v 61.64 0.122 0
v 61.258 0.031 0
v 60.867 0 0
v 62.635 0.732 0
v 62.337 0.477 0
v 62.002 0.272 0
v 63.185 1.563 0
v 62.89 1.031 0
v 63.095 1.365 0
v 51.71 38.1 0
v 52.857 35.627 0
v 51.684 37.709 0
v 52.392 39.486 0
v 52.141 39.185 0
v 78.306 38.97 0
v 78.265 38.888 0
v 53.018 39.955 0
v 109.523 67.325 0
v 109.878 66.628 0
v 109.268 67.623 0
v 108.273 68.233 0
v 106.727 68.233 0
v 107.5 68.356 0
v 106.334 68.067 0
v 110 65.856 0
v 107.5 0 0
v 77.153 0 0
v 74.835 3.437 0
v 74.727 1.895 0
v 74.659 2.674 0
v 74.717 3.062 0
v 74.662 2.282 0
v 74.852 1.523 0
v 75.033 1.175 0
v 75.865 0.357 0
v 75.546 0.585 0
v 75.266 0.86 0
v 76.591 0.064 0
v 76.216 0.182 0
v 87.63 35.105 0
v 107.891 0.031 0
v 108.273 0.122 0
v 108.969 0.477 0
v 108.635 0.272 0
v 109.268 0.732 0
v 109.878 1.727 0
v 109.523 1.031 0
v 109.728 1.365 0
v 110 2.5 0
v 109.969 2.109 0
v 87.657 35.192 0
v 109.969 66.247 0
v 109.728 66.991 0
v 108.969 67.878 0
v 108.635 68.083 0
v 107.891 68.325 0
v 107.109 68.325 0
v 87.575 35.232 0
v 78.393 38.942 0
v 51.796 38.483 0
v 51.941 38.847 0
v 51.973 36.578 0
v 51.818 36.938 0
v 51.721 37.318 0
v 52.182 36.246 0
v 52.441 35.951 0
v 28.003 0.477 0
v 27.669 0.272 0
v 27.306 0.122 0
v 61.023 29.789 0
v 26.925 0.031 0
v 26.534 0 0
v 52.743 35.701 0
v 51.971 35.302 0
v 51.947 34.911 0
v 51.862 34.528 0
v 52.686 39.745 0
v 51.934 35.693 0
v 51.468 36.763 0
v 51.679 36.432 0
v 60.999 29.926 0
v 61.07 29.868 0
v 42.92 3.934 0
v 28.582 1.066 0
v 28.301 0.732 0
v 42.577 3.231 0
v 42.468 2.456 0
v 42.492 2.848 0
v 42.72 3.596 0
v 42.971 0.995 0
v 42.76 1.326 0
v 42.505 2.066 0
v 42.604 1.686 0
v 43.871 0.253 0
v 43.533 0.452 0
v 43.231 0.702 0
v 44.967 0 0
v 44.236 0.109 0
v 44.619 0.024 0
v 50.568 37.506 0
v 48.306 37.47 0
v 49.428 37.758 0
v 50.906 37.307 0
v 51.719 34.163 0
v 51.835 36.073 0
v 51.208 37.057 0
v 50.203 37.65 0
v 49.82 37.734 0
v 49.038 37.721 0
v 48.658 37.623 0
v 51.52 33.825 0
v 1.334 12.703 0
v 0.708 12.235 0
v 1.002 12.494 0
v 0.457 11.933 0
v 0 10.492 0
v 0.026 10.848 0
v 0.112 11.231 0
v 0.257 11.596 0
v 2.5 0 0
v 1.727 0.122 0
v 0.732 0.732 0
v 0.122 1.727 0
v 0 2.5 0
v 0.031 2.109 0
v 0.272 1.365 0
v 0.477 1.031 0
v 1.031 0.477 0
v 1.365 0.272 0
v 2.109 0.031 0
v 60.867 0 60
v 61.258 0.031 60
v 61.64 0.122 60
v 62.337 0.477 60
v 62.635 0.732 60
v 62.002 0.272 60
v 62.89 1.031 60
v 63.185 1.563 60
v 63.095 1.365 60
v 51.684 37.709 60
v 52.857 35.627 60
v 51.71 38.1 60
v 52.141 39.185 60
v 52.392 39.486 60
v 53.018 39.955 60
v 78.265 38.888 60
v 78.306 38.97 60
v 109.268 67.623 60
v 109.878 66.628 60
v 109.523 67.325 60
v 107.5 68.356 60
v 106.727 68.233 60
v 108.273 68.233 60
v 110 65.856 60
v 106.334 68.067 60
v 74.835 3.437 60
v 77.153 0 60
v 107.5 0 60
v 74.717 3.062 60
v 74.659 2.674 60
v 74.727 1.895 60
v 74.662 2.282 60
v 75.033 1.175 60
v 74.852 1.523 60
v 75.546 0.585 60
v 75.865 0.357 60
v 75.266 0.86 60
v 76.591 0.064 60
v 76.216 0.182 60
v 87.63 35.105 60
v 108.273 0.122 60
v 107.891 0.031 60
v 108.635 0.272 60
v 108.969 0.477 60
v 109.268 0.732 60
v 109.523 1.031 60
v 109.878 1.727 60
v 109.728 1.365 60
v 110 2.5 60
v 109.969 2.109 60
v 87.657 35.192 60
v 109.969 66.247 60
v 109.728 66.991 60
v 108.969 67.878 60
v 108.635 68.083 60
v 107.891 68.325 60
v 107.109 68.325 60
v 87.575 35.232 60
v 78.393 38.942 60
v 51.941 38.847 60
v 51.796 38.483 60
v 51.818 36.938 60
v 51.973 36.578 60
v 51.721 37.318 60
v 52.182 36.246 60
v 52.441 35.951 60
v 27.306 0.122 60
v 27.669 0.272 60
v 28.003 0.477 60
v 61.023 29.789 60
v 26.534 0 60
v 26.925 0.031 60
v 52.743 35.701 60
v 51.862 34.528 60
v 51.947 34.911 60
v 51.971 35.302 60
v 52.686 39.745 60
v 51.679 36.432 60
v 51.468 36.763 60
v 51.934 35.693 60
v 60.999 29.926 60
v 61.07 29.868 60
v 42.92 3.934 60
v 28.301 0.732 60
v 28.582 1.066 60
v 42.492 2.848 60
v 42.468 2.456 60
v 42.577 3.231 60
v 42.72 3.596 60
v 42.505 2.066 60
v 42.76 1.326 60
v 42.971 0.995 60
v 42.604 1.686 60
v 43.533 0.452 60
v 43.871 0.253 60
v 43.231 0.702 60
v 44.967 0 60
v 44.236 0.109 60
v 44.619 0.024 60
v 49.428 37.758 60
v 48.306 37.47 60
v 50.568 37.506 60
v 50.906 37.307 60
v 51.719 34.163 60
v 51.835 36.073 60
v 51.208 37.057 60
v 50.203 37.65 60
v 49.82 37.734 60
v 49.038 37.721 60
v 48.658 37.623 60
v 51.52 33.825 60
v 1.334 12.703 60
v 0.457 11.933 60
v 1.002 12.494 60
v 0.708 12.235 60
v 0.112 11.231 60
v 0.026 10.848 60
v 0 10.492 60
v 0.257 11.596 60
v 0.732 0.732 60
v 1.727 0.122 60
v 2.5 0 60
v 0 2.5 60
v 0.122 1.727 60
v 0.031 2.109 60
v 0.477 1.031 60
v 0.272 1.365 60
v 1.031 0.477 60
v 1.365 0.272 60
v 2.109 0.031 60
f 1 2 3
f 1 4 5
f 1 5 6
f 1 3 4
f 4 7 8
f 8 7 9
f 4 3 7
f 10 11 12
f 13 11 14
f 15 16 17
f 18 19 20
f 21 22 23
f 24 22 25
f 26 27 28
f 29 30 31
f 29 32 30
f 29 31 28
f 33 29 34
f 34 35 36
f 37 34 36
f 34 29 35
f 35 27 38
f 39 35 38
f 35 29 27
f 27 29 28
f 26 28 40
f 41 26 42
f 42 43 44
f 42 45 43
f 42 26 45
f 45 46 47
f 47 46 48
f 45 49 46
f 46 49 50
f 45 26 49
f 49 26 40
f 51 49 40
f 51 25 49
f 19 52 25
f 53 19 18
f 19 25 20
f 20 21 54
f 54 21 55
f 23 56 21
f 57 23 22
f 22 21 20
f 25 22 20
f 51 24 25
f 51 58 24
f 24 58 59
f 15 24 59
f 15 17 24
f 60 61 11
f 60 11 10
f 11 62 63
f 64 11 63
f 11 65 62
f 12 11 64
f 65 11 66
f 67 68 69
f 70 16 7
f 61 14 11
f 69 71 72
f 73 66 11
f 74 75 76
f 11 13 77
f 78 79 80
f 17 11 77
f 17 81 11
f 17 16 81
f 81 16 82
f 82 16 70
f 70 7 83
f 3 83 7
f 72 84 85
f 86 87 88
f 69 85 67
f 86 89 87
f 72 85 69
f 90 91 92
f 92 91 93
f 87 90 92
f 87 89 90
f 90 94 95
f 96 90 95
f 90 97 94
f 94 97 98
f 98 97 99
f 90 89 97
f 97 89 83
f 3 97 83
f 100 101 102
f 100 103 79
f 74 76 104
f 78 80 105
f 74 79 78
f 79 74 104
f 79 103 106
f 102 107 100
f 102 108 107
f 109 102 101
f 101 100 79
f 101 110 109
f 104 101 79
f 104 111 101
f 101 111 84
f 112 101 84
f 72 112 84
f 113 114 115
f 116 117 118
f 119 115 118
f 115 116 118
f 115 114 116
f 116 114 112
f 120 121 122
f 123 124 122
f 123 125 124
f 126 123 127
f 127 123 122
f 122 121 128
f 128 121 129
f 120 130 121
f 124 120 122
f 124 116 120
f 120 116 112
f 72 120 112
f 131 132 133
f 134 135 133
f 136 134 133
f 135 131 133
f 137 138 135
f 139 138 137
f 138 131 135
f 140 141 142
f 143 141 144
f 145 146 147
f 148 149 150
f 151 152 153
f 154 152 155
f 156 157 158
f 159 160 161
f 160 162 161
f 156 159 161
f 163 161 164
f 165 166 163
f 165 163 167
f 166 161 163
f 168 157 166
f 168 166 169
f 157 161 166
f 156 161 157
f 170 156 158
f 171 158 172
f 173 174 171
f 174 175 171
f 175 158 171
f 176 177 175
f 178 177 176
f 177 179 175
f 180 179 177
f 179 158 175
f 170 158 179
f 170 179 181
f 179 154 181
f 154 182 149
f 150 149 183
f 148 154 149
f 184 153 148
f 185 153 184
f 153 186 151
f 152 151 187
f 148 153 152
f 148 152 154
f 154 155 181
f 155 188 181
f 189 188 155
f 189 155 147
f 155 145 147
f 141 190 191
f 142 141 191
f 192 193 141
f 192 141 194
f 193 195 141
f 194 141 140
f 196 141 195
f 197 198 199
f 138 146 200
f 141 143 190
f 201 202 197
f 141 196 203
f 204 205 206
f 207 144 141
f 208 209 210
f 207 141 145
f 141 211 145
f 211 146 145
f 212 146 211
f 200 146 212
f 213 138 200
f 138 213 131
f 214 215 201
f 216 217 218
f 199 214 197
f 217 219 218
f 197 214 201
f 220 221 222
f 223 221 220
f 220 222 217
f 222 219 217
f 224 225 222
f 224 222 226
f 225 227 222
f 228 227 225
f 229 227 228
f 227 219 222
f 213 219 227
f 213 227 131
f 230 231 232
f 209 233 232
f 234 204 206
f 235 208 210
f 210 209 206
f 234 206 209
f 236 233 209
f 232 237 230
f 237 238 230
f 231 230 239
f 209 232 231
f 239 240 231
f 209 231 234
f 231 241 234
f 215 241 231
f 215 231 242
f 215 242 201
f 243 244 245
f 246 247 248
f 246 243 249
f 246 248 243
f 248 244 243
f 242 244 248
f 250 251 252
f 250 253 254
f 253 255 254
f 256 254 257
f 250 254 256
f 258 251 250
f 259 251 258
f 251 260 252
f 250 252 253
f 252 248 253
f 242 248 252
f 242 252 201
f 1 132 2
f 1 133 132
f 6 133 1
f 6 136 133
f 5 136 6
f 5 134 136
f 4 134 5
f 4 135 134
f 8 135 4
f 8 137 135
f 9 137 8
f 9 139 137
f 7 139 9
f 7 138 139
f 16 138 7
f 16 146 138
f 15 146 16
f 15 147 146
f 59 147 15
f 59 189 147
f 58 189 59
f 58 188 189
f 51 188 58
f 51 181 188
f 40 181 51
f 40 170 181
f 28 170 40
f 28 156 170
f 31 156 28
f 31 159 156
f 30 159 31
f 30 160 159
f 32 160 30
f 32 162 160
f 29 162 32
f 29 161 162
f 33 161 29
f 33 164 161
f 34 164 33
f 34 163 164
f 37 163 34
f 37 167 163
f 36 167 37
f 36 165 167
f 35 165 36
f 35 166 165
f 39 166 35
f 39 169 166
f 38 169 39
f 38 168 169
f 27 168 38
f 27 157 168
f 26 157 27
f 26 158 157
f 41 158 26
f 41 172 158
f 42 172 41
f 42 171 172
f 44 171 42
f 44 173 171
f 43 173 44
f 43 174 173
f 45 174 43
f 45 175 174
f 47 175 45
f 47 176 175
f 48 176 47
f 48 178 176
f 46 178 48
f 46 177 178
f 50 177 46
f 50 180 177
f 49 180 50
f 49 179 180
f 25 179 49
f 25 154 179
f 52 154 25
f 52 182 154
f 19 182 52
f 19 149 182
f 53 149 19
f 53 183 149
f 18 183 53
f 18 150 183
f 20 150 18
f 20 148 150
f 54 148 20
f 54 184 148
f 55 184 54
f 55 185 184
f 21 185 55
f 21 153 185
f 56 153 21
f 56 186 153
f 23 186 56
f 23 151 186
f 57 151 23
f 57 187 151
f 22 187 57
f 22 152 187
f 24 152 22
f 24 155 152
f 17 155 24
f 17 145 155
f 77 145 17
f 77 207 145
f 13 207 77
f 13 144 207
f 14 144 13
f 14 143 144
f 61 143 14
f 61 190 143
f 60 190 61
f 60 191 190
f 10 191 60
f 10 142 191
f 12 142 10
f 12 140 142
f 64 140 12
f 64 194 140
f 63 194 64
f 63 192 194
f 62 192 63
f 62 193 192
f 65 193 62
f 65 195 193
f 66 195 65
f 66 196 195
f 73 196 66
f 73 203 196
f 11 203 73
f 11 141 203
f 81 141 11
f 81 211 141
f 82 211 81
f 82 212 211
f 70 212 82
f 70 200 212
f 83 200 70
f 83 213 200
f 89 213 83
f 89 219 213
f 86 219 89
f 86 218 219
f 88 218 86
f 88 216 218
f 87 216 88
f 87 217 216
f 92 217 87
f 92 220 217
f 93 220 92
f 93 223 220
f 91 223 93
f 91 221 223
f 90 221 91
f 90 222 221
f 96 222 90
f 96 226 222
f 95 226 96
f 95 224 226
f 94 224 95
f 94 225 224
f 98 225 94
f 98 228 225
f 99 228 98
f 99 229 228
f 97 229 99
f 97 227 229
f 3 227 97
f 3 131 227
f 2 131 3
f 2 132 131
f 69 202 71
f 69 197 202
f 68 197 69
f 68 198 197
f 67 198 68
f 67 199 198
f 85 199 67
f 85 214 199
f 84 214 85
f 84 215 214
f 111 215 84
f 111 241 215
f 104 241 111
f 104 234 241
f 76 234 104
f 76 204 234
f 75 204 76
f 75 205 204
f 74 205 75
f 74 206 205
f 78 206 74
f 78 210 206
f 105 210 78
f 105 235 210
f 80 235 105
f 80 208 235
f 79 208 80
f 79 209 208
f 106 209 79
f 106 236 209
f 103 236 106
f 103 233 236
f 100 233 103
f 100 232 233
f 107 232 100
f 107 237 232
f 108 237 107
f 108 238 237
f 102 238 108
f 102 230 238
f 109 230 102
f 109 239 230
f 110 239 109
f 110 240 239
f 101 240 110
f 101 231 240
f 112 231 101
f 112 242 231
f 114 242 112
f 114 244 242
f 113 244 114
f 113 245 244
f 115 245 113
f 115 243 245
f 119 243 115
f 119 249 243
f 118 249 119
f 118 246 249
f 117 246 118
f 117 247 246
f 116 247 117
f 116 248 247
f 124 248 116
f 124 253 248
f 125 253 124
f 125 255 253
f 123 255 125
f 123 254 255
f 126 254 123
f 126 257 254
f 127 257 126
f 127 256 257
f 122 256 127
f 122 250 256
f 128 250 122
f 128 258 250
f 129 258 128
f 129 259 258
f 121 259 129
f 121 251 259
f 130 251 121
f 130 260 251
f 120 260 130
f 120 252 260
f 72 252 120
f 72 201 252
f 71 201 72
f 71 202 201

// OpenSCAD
// file: BOSL2/std.scad
// Minimal BOSL2 compatibility shim for bundled gallery models.
// It implements only the helpers used by the imported OpenSCAD projects.

CENTER = [0, 0, 0];
BOTTOM = [0, 0, -1];
TOP = [0, 0, 1];
LEFT = [-1, 0, 0];
RIGHT = [1, 0, 0];
FRONT = [0, -1, 0];
BACK = [0, 1, 0];

module up(z=0) {
    translate([0, 0, z]) children();
}

module down(z=0) {
    translate([0, 0, -z]) children();
}

module attach(anchor=CENTER) {
    children();
}

module cuboid(size=[1, 1, 1], anchor=CENTER) {
    center = anchor == CENTER;
    translate(center ? [0, 0, 0] : [0, 0, size[2] / 2])
        cube(size, center=true);
    children();
}

module xcyl(h=1, r=1, anchor=CENTER) {
    center = anchor == CENTER;
    translate(center ? [0, 0, 0] : [h / 2, 0, 0])
        rotate([0, 90, 0])
            cylinder(h=h, r=r, center=true);
}
// main file
// iPad Air 5 stand - two angles, prints flat with no supports.
// 2026-10-02.
//
// Verified from Apple's tech specs: the Air 5 is 247.6 x 178.5 x 6.1 mm. The
// only dimension that matters here is the 6.1 thickness - and the one that will
// catch you out is your CASE. A folio adds 2-4 mm, so measure the tablet IN its
// case and put that in CASE_T.
//
// PRINTS ON ITS SIDE. The whole part is one constant cross-section extruded, so
// there is nothing to overhang: every slot wall comes out as a vertical face.
// That is also why the slots can be at any angle - the usual worry about an
// overhanging slot roof simply does not apply in this orientation.
//
// Print TWO and stand them 120-150 mm apart. Two narrow supports hold a tablet
// better than one wide one, use less filament, and print in parallel.

include <BOSL2/std.scad>
$fa = 2; $fs = 0.4;

// ---- the tablet --------------------------------------------------------------
PAD_T   = 6.1;      // Apple tech specs, iPad Air 5
CASE_T  = 3.0;      // MEASURE: what your case adds. 0 if you use it bare.
SLOT_GAP = 1.0;     // so it drops in rather than has to be pushed
SLOT_W  = PAD_T + CASE_T + SLOT_GAP;

// ---- the wedge ---------------------------------------------------------------
DEPTH    = 110;     // front to back on the desk
BACK_H   = 70;      // height at the back
FRONT_H  = 12;      // height at the front - the lip that stops it sliding out
WIDTH    = 60;      // along the tablet's edge (the extrusion)
SLOT_LEN = 40;      // how far the slot goes into the wedge

// Two angles, measured from the desk. Upright for typing, laid back for video.
ANGLE_A  = 68;
ANGLE_B  = 55;
SLOT_A_X = 68;      // where each slot meets the desk, from the front
SLOT_B_X = 34;
ROUND_R  = 2.5;     // nothing sharp against the screen

// ---- derived -----------------------------------------------------------------
// Top edge of the wedge at a given x, so the check below can ask whether a slot
// stays inside the material.
function top_at(x) = FRONT_H + (BACK_H - FRONT_H) * x / DEPTH;
function tip(x0, a)  = [x0 + SLOT_LEN * cos(a), SLOT_LEN * sin(a)];
function fits(x0, a) = tip(x0, a).y < top_at(tip(x0, a).x) - 3;

module wedge() {
  polygon([[0, 0], [DEPTH, 0], [DEPTH, BACK_H], [0, FRONT_H]]);
}

module slot(x0, a) {
  translate([x0, 0])
    rotate(a - 90)
      translate([-SLOT_W/2, -3])
        square([SLOT_W, SLOT_LEN + 3]);
}

module profile() {
  difference() {
    wedge();
    slot(SLOT_A_X, ANGLE_A);
    slot(SLOT_B_X, ANGLE_B);
  }
}

linear_extrude(WIDTH)
  offset(r = ROUND_R) offset(r = -ROUND_R) profile();

echo(str("iPad Air 5: 247.6 x 178.5 x 6.1 mm (Apple tech specs)"));
echo(str("slot ", SLOT_W, " = ", PAD_T, " tablet + ", CASE_T, " case + ", SLOT_GAP));
echo(str("wedge ", DEPTH, " deep, ", FRONT_H, " -> ", BACK_H, " tall, ", WIDTH,
         " wide. PRINT TWO."));
echo("-- does each slot stay inside the wedge? --");
echo(str("   ", ANGLE_A, " deg at x ", SLOT_A_X, ": tip ", tip(SLOT_A_X, ANGLE_A),
         "  top there ", top_at(tip(SLOT_A_X, ANGLE_A).x),
         fits(SLOT_A_X, ANGLE_A) ? "   ok" : "   <<< BREAKS OUT"));
echo(str("   ", ANGLE_B, " deg at x ", SLOT_B_X, ": tip ", tip(SLOT_B_X, ANGLE_B),
         "  top there ", top_at(tip(SLOT_B_X, ANGLE_B).x),
         fits(SLOT_B_X, ANGLE_B) ? "   ok" : "   <<< BREAKS OUT"));
echo("CASE_T is the number that will catch you out - measure it in the case.");
